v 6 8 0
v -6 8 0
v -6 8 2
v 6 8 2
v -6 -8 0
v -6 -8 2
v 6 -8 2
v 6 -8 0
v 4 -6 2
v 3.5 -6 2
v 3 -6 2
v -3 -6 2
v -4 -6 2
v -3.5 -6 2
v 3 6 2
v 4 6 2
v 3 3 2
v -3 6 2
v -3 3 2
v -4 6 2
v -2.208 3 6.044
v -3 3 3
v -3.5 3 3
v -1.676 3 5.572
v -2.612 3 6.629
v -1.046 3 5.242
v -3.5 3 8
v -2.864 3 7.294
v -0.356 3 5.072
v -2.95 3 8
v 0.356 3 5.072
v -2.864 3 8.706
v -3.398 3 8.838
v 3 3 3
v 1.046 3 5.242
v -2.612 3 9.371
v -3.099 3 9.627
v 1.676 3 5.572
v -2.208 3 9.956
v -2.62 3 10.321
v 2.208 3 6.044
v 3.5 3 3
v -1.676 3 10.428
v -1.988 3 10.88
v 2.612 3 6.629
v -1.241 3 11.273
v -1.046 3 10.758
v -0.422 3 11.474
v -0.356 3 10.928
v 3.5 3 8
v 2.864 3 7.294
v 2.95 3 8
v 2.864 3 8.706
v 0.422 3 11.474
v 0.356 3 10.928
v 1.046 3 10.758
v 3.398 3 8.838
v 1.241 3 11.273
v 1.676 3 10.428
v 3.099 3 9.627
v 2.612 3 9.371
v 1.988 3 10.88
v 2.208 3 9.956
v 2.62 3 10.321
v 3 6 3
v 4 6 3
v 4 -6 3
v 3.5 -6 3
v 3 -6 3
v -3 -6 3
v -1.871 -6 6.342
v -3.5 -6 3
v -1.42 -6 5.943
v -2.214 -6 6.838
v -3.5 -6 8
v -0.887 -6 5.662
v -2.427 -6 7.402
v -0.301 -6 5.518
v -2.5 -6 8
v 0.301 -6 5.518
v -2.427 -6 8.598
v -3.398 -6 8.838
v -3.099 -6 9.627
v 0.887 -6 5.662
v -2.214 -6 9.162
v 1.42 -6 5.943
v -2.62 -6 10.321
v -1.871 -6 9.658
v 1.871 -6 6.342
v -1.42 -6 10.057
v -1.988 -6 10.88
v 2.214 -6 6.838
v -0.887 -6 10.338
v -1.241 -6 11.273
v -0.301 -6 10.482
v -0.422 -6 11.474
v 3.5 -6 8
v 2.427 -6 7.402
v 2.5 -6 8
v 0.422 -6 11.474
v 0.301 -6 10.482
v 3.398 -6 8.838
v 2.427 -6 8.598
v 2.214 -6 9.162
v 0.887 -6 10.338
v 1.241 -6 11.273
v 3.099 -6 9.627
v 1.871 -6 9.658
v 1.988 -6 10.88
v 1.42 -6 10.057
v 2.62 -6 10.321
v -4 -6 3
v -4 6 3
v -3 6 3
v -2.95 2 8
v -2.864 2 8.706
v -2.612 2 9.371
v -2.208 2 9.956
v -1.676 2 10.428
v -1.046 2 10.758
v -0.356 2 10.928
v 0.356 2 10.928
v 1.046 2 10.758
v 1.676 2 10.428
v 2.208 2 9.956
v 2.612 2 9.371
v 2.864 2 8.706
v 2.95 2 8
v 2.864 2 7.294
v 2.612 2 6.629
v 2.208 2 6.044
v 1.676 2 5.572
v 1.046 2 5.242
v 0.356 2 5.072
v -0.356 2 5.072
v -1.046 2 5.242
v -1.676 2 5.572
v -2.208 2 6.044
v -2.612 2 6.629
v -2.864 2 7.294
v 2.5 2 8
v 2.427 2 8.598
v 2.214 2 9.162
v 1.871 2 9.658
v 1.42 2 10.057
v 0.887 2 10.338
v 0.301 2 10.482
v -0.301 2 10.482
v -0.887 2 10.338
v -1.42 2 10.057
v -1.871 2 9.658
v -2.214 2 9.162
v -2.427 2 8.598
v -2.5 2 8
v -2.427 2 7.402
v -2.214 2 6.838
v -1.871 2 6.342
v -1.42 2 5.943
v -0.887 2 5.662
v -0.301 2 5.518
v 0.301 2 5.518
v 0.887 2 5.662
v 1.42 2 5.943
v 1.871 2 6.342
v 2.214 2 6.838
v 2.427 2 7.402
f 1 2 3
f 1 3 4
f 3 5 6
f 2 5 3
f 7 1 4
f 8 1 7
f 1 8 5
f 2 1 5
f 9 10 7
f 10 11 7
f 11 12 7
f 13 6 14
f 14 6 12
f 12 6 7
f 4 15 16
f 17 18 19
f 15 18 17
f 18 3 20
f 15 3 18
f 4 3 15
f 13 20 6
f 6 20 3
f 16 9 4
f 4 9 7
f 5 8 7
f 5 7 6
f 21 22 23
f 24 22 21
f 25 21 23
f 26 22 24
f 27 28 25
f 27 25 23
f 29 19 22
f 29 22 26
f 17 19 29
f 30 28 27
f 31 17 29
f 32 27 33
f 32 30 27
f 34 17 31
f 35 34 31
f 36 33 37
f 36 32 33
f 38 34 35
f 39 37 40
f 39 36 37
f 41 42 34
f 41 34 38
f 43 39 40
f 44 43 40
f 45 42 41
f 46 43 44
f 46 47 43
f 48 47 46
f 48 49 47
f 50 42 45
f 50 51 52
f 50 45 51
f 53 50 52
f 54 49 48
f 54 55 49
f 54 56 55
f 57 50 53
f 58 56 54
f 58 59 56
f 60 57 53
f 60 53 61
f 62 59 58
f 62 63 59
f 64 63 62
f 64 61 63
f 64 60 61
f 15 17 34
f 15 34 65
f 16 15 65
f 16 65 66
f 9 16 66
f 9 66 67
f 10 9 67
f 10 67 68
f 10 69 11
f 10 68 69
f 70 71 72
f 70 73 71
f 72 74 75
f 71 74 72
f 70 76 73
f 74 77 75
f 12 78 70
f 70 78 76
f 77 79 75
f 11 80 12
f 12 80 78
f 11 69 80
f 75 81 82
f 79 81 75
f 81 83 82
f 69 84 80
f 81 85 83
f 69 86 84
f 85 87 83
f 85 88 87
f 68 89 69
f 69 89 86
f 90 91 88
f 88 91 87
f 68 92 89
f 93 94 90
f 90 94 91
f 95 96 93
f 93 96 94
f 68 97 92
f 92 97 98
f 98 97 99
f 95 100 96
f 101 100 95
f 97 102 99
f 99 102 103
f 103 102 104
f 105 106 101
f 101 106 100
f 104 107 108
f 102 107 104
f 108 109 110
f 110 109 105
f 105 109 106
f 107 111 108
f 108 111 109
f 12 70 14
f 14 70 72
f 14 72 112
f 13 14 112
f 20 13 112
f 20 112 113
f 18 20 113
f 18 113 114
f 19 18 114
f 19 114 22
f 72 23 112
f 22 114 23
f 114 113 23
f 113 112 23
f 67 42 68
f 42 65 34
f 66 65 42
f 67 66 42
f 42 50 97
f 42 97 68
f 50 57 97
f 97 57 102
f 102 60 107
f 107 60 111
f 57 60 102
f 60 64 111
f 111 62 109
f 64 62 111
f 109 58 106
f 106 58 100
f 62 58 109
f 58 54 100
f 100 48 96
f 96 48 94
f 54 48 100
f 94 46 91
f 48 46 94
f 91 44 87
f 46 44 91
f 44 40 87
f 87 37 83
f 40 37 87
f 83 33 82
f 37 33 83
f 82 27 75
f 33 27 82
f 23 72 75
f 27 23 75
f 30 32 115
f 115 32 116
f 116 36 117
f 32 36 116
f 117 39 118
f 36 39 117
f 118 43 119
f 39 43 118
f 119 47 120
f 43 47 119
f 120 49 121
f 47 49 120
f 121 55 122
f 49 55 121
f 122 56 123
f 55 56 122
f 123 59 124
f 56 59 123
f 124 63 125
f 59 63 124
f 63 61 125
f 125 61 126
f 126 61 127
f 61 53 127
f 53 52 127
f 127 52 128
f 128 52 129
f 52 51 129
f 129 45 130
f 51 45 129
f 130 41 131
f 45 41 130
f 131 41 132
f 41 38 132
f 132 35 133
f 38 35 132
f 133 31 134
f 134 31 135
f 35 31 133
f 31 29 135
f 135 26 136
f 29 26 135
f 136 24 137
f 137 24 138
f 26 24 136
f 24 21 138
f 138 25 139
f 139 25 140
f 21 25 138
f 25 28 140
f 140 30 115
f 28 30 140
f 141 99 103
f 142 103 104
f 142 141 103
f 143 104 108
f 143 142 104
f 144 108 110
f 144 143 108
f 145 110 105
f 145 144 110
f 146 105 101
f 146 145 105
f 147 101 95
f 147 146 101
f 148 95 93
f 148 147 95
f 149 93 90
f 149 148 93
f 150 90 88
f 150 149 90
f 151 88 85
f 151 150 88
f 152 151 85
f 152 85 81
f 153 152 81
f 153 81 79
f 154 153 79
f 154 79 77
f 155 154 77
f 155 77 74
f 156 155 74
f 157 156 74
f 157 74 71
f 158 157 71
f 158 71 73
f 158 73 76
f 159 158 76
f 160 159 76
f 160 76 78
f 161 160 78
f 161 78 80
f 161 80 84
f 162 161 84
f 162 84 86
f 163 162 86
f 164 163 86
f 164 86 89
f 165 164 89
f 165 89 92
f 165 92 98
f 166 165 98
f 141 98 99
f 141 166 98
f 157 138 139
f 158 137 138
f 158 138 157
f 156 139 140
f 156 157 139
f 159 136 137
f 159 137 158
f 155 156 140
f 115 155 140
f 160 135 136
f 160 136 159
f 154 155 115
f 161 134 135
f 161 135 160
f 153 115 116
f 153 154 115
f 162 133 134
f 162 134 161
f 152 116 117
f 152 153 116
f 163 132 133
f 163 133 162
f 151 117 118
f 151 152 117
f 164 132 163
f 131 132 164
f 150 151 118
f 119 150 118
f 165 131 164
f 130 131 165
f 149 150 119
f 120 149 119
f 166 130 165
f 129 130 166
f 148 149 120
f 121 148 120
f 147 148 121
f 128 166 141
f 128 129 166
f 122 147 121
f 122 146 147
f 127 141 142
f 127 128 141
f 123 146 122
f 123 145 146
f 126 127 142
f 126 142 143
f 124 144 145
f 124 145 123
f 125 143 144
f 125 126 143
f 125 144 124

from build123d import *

# Parameters (mm, degrees)
SKETCH_W          = 12
SKETCH_H          = 16
PAD_DEPTH         = 2
SKETCH001_R       = 2.5
PAD001_DEPTH      = 6
PAD001_DEPTH_BACK = 3
SKETCH002_R       = 2.95
POCKET_DEPTH      = 1
SKETCH003_W       = 1
SKETCH003_H       = 12
PAD002_DEPTH      = 1


with BuildPart() as part:
    # Sketch → Pad (new body)
    with BuildSketch(Plane.XY):
        Rectangle(SKETCH_W, SKETCH_H)
    extrude(amount=PAD_DEPTH)

    # Sketch001 → Pad001 (join, two sides)
    with BuildSketch(Plane.XZ) as pad001_sk:
        with BuildLine():
            Line((-3.5, 2), (-3.5, 8))
            ThreePointArc((3.5, 8), (0, 11.5), (-3.5, 8))
            Line((3.5, 8), (3.5, 2))
            Line((-3.5, 2), (3.5, 2))
        make_face()
        with Locations((0, 8)):
            Circle(SKETCH001_R, mode=Mode.SUBTRACT)
    extrude(amount=PAD001_DEPTH)
    extrude(pad001_sk.sketch, amount=-PAD001_DEPTH_BACK)

    # Sketch002 (on Face7 of Pad001) → Pocket (cut)
    with BuildSketch(Plane(origin=(0, 3, 0), x_dir=(-1, 0, 0), z_dir=(0, 1, 0))):
        with Locations((0, 8)):
            Circle(SKETCH002_R)
    extrude(amount=-POCKET_DEPTH, mode=Mode.SUBTRACT)

    # Sketch003 (on Face5 of Pocket) → Pad002 (join)
    with BuildSketch(Plane.XY.offset(2)):
        with Locations((-3.5, 0)):
            Rectangle(SKETCH003_W, SKETCH003_H)
        with Locations((3.5, 0)):
            Rectangle(SKETCH003_W, SKETCH003_H)
    extrude(amount=PAD002_DEPTH)


solid = part.part
